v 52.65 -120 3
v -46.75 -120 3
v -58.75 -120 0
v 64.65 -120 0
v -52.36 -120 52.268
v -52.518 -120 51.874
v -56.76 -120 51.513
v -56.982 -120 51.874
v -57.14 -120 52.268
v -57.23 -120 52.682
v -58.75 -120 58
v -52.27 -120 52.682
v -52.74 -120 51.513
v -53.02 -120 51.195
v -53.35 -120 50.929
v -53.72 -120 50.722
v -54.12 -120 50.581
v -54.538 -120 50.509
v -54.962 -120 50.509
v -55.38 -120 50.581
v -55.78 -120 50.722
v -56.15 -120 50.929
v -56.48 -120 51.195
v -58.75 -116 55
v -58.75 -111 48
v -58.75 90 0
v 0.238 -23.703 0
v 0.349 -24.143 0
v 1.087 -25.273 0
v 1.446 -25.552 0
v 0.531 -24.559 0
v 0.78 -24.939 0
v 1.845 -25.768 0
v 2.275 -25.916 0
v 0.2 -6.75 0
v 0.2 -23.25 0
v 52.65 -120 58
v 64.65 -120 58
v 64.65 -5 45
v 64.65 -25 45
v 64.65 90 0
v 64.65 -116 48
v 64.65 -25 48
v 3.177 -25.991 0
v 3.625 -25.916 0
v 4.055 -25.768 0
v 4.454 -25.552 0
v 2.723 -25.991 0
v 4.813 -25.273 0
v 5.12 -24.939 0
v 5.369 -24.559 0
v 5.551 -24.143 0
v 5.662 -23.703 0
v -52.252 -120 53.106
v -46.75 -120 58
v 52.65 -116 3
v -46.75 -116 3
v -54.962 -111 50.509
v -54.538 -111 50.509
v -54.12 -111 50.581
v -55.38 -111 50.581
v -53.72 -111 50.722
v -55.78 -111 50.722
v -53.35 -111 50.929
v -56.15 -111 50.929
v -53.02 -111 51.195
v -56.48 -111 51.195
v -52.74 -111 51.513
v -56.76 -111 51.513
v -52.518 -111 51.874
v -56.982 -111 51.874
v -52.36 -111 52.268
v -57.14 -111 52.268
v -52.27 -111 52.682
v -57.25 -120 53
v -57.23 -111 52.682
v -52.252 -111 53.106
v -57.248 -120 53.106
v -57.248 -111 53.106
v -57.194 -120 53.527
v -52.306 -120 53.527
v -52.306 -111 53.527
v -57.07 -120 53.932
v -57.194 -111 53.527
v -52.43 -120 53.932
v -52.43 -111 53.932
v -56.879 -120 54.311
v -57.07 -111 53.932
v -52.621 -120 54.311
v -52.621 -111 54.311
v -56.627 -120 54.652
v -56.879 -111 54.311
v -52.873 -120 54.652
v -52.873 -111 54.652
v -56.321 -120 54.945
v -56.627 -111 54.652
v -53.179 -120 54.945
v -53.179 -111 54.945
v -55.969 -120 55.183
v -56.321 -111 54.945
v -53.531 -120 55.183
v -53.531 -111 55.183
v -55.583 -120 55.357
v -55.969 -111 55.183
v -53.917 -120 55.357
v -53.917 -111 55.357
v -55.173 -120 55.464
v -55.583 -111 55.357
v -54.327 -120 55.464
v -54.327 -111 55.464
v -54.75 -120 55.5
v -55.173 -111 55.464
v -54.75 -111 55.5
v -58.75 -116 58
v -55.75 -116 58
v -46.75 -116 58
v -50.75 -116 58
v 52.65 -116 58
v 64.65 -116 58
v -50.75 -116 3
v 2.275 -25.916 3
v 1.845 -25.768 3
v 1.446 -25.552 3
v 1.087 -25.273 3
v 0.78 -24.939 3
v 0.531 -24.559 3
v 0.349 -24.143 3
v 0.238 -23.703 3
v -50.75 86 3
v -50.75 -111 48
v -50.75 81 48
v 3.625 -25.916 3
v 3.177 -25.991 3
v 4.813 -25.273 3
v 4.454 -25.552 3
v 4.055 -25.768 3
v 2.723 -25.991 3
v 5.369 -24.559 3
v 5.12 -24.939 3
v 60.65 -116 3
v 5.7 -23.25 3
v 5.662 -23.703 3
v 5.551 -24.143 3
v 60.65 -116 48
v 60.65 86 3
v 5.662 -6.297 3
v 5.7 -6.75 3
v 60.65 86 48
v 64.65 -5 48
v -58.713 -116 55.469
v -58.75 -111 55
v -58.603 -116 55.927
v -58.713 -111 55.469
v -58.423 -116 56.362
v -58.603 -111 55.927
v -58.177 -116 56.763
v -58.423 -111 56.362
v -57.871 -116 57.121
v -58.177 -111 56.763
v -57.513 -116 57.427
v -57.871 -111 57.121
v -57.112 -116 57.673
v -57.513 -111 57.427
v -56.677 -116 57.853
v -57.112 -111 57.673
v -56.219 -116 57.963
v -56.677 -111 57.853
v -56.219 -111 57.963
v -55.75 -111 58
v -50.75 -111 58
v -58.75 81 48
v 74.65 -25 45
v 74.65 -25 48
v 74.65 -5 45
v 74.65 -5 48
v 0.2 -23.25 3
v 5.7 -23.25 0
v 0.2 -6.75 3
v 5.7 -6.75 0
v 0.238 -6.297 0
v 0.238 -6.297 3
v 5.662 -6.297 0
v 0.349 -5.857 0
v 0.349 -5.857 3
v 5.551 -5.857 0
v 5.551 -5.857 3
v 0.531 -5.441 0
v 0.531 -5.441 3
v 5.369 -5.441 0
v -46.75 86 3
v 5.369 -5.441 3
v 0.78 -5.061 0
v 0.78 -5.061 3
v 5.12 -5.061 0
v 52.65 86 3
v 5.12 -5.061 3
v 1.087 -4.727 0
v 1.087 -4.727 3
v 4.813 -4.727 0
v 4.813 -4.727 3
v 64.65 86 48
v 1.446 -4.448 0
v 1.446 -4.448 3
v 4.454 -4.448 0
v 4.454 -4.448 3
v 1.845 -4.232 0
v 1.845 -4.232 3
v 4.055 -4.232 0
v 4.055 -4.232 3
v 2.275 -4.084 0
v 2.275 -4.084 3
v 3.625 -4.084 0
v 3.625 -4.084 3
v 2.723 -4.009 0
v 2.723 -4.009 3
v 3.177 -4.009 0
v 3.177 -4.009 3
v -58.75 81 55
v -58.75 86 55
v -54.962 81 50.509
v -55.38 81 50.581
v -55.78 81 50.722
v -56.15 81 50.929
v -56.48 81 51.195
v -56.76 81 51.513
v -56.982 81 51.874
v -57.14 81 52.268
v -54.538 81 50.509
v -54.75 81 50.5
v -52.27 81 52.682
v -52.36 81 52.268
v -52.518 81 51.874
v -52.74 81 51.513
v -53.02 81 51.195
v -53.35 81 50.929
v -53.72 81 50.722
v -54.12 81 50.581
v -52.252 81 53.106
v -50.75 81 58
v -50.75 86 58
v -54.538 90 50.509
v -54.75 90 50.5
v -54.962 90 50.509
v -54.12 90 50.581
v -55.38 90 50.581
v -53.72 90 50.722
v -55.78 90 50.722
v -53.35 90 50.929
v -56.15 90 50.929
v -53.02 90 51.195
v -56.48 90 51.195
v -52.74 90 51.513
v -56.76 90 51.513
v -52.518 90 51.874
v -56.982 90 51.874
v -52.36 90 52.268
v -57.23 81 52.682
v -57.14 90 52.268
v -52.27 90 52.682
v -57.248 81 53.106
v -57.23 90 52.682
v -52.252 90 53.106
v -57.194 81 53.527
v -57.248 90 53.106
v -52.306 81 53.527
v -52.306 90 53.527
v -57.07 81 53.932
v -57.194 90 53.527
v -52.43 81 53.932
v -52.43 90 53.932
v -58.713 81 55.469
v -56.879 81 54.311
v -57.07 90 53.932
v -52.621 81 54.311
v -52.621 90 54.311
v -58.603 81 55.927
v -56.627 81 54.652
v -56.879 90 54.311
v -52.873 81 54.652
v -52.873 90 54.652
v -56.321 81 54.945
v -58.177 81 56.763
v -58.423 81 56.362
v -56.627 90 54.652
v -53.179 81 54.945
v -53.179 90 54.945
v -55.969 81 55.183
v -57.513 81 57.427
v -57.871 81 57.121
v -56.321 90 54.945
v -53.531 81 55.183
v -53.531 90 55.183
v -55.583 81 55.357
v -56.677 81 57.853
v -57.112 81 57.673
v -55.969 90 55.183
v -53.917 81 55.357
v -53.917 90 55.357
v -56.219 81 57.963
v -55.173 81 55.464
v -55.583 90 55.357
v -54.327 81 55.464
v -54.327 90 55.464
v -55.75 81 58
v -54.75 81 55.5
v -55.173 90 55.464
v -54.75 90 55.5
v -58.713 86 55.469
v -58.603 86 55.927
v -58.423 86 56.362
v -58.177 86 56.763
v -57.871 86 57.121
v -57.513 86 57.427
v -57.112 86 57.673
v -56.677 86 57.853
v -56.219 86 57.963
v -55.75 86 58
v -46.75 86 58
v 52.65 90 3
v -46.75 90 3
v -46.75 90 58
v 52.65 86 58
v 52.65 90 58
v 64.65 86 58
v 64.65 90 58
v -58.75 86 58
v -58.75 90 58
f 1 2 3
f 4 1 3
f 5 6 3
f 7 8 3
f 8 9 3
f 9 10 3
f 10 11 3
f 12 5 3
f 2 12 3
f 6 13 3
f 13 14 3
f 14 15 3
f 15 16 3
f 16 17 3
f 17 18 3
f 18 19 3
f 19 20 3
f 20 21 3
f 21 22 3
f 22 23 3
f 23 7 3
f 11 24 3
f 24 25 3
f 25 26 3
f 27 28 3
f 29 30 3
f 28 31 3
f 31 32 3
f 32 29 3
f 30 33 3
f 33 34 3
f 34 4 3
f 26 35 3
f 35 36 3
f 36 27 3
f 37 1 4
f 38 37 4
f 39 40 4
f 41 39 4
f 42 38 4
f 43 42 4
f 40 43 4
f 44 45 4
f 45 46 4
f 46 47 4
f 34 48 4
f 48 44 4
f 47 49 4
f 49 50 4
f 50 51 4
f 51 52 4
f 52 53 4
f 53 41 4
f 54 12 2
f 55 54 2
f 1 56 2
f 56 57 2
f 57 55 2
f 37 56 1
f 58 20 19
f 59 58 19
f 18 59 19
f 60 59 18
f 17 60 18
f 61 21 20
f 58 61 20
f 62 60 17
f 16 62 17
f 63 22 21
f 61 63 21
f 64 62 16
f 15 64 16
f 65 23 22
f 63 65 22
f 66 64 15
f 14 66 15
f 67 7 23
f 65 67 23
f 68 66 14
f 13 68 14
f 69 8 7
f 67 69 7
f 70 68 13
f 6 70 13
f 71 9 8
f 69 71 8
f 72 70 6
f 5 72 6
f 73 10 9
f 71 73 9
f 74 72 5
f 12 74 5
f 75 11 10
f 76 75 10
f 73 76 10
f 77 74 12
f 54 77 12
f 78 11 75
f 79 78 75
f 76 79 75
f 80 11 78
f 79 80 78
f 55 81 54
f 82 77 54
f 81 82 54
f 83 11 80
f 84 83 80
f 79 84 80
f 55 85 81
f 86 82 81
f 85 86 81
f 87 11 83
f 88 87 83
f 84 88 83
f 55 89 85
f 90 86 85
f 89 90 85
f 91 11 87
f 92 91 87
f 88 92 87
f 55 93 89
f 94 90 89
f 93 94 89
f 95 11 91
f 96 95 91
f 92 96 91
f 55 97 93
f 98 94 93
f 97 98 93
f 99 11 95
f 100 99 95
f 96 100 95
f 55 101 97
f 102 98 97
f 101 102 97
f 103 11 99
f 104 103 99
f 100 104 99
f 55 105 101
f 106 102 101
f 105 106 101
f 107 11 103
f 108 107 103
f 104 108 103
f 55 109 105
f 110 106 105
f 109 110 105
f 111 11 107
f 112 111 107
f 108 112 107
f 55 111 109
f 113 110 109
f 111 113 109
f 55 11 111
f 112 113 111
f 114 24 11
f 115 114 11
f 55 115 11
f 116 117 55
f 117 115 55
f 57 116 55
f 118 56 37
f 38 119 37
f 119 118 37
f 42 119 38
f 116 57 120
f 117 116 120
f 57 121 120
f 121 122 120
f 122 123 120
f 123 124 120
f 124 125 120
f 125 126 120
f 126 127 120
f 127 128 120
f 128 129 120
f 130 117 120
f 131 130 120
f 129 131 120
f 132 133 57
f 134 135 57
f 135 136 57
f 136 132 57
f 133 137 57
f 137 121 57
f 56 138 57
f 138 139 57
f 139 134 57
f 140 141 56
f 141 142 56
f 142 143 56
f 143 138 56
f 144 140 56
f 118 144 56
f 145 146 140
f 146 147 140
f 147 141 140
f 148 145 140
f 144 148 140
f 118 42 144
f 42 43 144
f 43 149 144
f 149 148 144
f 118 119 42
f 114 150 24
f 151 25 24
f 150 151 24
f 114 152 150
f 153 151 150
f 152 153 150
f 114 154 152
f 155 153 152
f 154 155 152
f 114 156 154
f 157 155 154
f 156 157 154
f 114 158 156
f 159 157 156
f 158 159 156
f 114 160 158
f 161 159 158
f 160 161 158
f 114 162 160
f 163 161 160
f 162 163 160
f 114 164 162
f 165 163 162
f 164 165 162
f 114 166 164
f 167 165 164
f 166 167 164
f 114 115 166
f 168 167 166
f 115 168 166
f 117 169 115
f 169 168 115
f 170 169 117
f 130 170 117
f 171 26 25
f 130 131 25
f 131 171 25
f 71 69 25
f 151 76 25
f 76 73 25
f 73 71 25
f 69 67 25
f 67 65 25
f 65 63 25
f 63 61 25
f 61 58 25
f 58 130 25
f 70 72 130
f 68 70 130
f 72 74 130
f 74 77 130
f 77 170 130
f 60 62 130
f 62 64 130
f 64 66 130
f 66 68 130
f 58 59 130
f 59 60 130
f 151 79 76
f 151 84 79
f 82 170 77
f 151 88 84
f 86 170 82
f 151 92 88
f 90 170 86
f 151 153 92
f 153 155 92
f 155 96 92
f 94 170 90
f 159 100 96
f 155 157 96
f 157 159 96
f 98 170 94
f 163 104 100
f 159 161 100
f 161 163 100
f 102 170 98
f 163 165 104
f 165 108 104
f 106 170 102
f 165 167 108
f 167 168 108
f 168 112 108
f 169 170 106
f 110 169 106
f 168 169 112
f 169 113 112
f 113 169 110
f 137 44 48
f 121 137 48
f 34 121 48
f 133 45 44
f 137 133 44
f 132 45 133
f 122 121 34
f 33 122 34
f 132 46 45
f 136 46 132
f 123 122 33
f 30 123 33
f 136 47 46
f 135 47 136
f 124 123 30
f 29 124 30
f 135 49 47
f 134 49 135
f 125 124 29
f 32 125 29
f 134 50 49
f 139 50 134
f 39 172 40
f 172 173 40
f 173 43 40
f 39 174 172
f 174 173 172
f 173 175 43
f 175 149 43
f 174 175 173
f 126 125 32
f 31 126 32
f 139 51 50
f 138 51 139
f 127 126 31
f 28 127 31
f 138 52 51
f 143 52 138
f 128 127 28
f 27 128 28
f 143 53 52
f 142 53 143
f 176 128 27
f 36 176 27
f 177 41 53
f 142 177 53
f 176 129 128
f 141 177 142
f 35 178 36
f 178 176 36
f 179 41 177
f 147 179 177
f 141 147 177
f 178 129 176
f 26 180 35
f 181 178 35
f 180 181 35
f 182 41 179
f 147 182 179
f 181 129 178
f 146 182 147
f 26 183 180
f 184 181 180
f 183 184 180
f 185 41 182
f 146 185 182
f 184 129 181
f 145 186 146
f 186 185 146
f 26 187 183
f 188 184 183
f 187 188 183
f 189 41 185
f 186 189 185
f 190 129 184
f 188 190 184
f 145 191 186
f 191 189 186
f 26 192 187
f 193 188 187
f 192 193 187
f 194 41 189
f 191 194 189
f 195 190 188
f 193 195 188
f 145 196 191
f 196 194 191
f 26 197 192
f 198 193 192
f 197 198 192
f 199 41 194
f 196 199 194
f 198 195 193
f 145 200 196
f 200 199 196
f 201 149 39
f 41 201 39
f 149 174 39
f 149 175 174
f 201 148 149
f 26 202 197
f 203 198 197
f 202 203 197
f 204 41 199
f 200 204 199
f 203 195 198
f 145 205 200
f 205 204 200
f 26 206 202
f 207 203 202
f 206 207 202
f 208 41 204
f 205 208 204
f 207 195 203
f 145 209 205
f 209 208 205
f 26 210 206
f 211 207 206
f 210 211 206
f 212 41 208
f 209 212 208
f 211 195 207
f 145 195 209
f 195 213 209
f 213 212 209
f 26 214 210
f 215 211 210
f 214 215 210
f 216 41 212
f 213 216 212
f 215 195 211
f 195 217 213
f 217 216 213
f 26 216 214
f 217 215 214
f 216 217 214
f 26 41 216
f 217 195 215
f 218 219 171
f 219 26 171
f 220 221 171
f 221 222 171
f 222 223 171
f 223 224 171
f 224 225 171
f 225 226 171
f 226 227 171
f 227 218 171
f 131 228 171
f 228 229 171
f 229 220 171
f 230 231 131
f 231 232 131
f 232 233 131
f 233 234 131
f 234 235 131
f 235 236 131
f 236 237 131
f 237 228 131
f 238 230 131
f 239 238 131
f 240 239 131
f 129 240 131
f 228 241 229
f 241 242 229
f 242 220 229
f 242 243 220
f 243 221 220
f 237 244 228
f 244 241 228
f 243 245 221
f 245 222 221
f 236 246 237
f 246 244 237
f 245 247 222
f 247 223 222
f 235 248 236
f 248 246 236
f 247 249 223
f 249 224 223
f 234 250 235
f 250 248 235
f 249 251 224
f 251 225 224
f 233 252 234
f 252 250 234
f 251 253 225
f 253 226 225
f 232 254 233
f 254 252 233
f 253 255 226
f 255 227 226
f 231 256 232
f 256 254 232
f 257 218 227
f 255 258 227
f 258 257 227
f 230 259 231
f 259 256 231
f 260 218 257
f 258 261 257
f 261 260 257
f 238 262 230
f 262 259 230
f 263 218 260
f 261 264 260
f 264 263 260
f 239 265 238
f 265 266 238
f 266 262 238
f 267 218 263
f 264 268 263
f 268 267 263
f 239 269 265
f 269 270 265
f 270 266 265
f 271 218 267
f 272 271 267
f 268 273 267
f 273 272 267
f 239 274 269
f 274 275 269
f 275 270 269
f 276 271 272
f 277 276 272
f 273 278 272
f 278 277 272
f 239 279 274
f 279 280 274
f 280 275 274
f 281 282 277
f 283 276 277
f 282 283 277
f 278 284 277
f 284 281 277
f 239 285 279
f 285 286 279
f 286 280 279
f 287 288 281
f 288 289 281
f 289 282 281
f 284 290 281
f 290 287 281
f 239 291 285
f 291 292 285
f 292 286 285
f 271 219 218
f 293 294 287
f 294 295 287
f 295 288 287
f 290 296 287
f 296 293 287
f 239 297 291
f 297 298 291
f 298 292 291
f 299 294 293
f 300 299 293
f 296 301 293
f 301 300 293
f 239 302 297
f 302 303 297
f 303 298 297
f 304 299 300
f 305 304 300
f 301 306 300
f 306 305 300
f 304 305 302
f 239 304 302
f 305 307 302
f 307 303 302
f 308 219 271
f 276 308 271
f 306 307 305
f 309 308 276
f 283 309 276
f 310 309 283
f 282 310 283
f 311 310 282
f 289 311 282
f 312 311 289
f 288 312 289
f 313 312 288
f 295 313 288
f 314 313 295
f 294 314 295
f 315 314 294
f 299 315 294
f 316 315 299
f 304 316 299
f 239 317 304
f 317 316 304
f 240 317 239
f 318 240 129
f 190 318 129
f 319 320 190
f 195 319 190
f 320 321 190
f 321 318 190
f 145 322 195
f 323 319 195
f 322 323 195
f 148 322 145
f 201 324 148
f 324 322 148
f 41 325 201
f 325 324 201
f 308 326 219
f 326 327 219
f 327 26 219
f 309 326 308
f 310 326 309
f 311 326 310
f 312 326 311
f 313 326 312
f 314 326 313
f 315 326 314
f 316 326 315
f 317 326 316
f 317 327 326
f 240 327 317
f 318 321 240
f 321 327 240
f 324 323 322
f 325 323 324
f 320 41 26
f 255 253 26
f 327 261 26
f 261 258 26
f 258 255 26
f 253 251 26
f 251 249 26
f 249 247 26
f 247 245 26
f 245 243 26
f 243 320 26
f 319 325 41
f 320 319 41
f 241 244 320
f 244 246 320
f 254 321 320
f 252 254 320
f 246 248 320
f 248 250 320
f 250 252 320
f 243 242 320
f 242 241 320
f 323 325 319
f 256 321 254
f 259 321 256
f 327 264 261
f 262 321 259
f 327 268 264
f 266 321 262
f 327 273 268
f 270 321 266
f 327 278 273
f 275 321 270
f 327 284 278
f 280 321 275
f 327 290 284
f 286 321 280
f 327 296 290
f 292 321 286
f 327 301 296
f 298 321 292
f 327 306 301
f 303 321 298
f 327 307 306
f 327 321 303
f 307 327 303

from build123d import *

# Parameters (mm, degrees)
SKETCH_2_W               = 123.4
SKETCH_2_H               = 210
EXTRUDE_2_DEPTH          = 3
EXTRUDE_5_DEPTH          = 4
EXTRUDE_START            = -4
EXTRUDE_6_DEPTH          = 4
EXTRUDE_8_DEPTH          = 8
CUT_EXTRUDE_1_DEPTH      = 205
CUT_EXTRUDE_1_DEPTH_BACK = 243.711170942
SKETCH_8_R               = 2.5
FILLET_1_R               = 3
SKETCH_10_W              = 4
SKETCH_10_H              = 202
EXTRUDE_9_DEPTH          = 45
CUT_EXTRUDE_2_DEPTH      = 182.404830421
SKETCH_12_W              = 3
SKETCH_12_H              = 20
EXTRUDE_10_DEPTH         = 10
CUT_EXTRUDE_3_REACH      = 254.984
SKETCH_13_W              = 99.4
SKETCH_13_H              = 144.727282118
SKETCH_13_W_2            = 205.501958082
SKETCH_13_H_2            = 63.361365512


with BuildPart() as part:
    # 草圖2 → 填料-伸長2 (new body)
    with BuildSketch(Plane.XY):
        with Locations((2.95, -15)):
            Rectangle(SKETCH_2_W, SKETCH_2_H)
    extrude(amount=EXTRUDE_2_DEPTH)

    # 草圖4 → 填料-伸長5 (add)
    with BuildSketch(Plane.XZ.offset(120)):
        with BuildLine():
            Line((-58.75, 3), (-58.75, 58))
            ThreePointArc((-58.75, 58), (2.95, 119.7), (64.65, 58))
            Line((64.65, 58), (64.65, 3))
            Line((64.65, 3), (-58.75, 3))
        make_face()
    extrude(amount=-EXTRUDE_5_DEPTH)

    # 草圖5 → 填料-伸長6 (add)
    with BuildSketch(Plane(origin=(0, 90, 0), x_dir=(1, 0, 0), z_dir=(0, 1, 0)).offset(EXTRUDE_START)):
        with BuildLine():
            Line((-58.75, -3), (-58.75, -58))
            ThreePointArc((-58.75, -58), (2.95, -119.7), (64.65, -58))
            Line((64.65, -58), (64.65, -3))
            Line((64.65, -3), (-58.75, -3))
        make_face()
    extrude(amount=EXTRUDE_6_DEPTH)

    # 草圖7 → 填料-伸長8 (add)
    with BuildSketch(Plane.ZY.offset(58.75)):
        Polygon((3, 86), (58, 86), (58, 81), (48, 81), (48, -111), (58, -111), (58, -116), (3, -116), align=None)
    extrude(amount=-EXTRUDE_8_DEPTH)

    # 草圖8 → 除料-伸長1 (cut, two sides: drawn at the far end of the back side and taken through both)
    with BuildSketch(Plane.XZ.offset(-81).offset(-CUT_EXTRUDE_1_DEPTH_BACK)):
        with Locations(Location((-54.75, 53, 0), (0, 0, 90))):
            Circle(SKETCH_8_R)
    extrude(amount=CUT_EXTRUDE_1_DEPTH + CUT_EXTRUDE_1_DEPTH_BACK, mode=Mode.SUBTRACT)

    # 圓角1
    fillet_1_edges = [part.edges().sort_by_distance(p)[0] for p in [
        (-58.75, -113.5, 58),
        (-58.75, 83.5, 58),
    ]]
    fillet(fillet_1_edges, radius=FILLET_1_R)

    # 草圖10 → 填料-伸長9 (add)
    with BuildSketch(Plane.XY.offset(3)):
        with Locations((62.65, -15)):
            Rectangle(SKETCH_10_W, SKETCH_10_H)
    extrude(amount=EXTRUDE_9_DEPTH)

    # 草圖11 → 除料-伸長2 (cut, through all)
    with BuildSketch(Plane(origin=(0, 0, 0), x_dir=(-1, 0, 0), z_dir=(0, 0, -1))):
        with BuildLine():
            Line((-0.2, -6.75), (-0.2, -23.25))
            ThreePointArc((-0.2, -23.25), (-2.95, -26), (-5.7, -23.25))
            Line((-5.7, -23.25), (-5.7, -6.75))
            ThreePointArc((-5.7, -6.75), (-2.95, -4), (-0.2, -6.75))
        make_face()
    extrude(amount=-CUT_EXTRUDE_2_DEPTH, mode=Mode.SUBTRACT)

    # 草圖12 → 填料-伸長10 (add)
    with BuildSketch(Plane(origin=(64.65, 0, 0), x_dir=(0, 0, -1), z_dir=(1, 0, 0))):
        with Locations((-46.5, -15)):
            Rectangle(SKETCH_12_W, SKETCH_12_H)
    extrude(amount=EXTRUDE_10_DEPTH)

    # 除料-伸長3: up to this face of the body (flat: up to its plane)
    cut_extrude_3_end = Plane(part.part.faces().sort_by_distance((3.036368919, -120, 54.121907078))[0])
    # 草圖13 → 除料-伸長3 (cut, up to the picked face)
    with BuildSketch(Plane(origin=(0, 90, 0), x_dir=(1, 0, 0), z_dir=(0, 1, 0)), mode=Mode.PRIVATE) as cut_extrude_3_sk1:
        with Locations((2.95, -75.363641059)):
            Rectangle(SKETCH_13_W, SKETCH_13_H)
    cut_extrude_3_tool1 = split(extrude(cut_extrude_3_sk1.sketch, amount=-CUT_EXTRUDE_3_REACH, mode=Mode.PRIVATE), bisect_by=cut_extrude_3_end, keep=Keep.BOTH, mode=Mode.PRIVATE)
    # 草圖13 → 除料-伸長3 (cut, up to the picked face)
    with BuildSketch(Plane(origin=(0, 90, 0), x_dir=(1, 0, 0), z_dir=(0, 1, 0)), mode=Mode.PRIVATE) as cut_extrude_3_sk2:
        with Locations((2.95, -89.680682756)):
            Rectangle(SKETCH_13_W_2, SKETCH_13_H_2)
    cut_extrude_3_tool2 = split(extrude(cut_extrude_3_sk2.sketch, amount=-CUT_EXTRUDE_3_REACH, mode=Mode.PRIVATE), bisect_by=cut_extrude_3_end, keep=Keep.BOTH, mode=Mode.PRIVATE)
    add(cut_extrude_3_tool1.solids().sort_by(Axis((2.95, 90, 75.363641), (0, -1, 0)))[0], mode=Mode.SUBTRACT)
    add(cut_extrude_3_tool2.solids().sort_by(Axis((2.95, 90, 89.680683), (0, -1, 0)))[0], mode=Mode.SUBTRACT)


solid = part.part
